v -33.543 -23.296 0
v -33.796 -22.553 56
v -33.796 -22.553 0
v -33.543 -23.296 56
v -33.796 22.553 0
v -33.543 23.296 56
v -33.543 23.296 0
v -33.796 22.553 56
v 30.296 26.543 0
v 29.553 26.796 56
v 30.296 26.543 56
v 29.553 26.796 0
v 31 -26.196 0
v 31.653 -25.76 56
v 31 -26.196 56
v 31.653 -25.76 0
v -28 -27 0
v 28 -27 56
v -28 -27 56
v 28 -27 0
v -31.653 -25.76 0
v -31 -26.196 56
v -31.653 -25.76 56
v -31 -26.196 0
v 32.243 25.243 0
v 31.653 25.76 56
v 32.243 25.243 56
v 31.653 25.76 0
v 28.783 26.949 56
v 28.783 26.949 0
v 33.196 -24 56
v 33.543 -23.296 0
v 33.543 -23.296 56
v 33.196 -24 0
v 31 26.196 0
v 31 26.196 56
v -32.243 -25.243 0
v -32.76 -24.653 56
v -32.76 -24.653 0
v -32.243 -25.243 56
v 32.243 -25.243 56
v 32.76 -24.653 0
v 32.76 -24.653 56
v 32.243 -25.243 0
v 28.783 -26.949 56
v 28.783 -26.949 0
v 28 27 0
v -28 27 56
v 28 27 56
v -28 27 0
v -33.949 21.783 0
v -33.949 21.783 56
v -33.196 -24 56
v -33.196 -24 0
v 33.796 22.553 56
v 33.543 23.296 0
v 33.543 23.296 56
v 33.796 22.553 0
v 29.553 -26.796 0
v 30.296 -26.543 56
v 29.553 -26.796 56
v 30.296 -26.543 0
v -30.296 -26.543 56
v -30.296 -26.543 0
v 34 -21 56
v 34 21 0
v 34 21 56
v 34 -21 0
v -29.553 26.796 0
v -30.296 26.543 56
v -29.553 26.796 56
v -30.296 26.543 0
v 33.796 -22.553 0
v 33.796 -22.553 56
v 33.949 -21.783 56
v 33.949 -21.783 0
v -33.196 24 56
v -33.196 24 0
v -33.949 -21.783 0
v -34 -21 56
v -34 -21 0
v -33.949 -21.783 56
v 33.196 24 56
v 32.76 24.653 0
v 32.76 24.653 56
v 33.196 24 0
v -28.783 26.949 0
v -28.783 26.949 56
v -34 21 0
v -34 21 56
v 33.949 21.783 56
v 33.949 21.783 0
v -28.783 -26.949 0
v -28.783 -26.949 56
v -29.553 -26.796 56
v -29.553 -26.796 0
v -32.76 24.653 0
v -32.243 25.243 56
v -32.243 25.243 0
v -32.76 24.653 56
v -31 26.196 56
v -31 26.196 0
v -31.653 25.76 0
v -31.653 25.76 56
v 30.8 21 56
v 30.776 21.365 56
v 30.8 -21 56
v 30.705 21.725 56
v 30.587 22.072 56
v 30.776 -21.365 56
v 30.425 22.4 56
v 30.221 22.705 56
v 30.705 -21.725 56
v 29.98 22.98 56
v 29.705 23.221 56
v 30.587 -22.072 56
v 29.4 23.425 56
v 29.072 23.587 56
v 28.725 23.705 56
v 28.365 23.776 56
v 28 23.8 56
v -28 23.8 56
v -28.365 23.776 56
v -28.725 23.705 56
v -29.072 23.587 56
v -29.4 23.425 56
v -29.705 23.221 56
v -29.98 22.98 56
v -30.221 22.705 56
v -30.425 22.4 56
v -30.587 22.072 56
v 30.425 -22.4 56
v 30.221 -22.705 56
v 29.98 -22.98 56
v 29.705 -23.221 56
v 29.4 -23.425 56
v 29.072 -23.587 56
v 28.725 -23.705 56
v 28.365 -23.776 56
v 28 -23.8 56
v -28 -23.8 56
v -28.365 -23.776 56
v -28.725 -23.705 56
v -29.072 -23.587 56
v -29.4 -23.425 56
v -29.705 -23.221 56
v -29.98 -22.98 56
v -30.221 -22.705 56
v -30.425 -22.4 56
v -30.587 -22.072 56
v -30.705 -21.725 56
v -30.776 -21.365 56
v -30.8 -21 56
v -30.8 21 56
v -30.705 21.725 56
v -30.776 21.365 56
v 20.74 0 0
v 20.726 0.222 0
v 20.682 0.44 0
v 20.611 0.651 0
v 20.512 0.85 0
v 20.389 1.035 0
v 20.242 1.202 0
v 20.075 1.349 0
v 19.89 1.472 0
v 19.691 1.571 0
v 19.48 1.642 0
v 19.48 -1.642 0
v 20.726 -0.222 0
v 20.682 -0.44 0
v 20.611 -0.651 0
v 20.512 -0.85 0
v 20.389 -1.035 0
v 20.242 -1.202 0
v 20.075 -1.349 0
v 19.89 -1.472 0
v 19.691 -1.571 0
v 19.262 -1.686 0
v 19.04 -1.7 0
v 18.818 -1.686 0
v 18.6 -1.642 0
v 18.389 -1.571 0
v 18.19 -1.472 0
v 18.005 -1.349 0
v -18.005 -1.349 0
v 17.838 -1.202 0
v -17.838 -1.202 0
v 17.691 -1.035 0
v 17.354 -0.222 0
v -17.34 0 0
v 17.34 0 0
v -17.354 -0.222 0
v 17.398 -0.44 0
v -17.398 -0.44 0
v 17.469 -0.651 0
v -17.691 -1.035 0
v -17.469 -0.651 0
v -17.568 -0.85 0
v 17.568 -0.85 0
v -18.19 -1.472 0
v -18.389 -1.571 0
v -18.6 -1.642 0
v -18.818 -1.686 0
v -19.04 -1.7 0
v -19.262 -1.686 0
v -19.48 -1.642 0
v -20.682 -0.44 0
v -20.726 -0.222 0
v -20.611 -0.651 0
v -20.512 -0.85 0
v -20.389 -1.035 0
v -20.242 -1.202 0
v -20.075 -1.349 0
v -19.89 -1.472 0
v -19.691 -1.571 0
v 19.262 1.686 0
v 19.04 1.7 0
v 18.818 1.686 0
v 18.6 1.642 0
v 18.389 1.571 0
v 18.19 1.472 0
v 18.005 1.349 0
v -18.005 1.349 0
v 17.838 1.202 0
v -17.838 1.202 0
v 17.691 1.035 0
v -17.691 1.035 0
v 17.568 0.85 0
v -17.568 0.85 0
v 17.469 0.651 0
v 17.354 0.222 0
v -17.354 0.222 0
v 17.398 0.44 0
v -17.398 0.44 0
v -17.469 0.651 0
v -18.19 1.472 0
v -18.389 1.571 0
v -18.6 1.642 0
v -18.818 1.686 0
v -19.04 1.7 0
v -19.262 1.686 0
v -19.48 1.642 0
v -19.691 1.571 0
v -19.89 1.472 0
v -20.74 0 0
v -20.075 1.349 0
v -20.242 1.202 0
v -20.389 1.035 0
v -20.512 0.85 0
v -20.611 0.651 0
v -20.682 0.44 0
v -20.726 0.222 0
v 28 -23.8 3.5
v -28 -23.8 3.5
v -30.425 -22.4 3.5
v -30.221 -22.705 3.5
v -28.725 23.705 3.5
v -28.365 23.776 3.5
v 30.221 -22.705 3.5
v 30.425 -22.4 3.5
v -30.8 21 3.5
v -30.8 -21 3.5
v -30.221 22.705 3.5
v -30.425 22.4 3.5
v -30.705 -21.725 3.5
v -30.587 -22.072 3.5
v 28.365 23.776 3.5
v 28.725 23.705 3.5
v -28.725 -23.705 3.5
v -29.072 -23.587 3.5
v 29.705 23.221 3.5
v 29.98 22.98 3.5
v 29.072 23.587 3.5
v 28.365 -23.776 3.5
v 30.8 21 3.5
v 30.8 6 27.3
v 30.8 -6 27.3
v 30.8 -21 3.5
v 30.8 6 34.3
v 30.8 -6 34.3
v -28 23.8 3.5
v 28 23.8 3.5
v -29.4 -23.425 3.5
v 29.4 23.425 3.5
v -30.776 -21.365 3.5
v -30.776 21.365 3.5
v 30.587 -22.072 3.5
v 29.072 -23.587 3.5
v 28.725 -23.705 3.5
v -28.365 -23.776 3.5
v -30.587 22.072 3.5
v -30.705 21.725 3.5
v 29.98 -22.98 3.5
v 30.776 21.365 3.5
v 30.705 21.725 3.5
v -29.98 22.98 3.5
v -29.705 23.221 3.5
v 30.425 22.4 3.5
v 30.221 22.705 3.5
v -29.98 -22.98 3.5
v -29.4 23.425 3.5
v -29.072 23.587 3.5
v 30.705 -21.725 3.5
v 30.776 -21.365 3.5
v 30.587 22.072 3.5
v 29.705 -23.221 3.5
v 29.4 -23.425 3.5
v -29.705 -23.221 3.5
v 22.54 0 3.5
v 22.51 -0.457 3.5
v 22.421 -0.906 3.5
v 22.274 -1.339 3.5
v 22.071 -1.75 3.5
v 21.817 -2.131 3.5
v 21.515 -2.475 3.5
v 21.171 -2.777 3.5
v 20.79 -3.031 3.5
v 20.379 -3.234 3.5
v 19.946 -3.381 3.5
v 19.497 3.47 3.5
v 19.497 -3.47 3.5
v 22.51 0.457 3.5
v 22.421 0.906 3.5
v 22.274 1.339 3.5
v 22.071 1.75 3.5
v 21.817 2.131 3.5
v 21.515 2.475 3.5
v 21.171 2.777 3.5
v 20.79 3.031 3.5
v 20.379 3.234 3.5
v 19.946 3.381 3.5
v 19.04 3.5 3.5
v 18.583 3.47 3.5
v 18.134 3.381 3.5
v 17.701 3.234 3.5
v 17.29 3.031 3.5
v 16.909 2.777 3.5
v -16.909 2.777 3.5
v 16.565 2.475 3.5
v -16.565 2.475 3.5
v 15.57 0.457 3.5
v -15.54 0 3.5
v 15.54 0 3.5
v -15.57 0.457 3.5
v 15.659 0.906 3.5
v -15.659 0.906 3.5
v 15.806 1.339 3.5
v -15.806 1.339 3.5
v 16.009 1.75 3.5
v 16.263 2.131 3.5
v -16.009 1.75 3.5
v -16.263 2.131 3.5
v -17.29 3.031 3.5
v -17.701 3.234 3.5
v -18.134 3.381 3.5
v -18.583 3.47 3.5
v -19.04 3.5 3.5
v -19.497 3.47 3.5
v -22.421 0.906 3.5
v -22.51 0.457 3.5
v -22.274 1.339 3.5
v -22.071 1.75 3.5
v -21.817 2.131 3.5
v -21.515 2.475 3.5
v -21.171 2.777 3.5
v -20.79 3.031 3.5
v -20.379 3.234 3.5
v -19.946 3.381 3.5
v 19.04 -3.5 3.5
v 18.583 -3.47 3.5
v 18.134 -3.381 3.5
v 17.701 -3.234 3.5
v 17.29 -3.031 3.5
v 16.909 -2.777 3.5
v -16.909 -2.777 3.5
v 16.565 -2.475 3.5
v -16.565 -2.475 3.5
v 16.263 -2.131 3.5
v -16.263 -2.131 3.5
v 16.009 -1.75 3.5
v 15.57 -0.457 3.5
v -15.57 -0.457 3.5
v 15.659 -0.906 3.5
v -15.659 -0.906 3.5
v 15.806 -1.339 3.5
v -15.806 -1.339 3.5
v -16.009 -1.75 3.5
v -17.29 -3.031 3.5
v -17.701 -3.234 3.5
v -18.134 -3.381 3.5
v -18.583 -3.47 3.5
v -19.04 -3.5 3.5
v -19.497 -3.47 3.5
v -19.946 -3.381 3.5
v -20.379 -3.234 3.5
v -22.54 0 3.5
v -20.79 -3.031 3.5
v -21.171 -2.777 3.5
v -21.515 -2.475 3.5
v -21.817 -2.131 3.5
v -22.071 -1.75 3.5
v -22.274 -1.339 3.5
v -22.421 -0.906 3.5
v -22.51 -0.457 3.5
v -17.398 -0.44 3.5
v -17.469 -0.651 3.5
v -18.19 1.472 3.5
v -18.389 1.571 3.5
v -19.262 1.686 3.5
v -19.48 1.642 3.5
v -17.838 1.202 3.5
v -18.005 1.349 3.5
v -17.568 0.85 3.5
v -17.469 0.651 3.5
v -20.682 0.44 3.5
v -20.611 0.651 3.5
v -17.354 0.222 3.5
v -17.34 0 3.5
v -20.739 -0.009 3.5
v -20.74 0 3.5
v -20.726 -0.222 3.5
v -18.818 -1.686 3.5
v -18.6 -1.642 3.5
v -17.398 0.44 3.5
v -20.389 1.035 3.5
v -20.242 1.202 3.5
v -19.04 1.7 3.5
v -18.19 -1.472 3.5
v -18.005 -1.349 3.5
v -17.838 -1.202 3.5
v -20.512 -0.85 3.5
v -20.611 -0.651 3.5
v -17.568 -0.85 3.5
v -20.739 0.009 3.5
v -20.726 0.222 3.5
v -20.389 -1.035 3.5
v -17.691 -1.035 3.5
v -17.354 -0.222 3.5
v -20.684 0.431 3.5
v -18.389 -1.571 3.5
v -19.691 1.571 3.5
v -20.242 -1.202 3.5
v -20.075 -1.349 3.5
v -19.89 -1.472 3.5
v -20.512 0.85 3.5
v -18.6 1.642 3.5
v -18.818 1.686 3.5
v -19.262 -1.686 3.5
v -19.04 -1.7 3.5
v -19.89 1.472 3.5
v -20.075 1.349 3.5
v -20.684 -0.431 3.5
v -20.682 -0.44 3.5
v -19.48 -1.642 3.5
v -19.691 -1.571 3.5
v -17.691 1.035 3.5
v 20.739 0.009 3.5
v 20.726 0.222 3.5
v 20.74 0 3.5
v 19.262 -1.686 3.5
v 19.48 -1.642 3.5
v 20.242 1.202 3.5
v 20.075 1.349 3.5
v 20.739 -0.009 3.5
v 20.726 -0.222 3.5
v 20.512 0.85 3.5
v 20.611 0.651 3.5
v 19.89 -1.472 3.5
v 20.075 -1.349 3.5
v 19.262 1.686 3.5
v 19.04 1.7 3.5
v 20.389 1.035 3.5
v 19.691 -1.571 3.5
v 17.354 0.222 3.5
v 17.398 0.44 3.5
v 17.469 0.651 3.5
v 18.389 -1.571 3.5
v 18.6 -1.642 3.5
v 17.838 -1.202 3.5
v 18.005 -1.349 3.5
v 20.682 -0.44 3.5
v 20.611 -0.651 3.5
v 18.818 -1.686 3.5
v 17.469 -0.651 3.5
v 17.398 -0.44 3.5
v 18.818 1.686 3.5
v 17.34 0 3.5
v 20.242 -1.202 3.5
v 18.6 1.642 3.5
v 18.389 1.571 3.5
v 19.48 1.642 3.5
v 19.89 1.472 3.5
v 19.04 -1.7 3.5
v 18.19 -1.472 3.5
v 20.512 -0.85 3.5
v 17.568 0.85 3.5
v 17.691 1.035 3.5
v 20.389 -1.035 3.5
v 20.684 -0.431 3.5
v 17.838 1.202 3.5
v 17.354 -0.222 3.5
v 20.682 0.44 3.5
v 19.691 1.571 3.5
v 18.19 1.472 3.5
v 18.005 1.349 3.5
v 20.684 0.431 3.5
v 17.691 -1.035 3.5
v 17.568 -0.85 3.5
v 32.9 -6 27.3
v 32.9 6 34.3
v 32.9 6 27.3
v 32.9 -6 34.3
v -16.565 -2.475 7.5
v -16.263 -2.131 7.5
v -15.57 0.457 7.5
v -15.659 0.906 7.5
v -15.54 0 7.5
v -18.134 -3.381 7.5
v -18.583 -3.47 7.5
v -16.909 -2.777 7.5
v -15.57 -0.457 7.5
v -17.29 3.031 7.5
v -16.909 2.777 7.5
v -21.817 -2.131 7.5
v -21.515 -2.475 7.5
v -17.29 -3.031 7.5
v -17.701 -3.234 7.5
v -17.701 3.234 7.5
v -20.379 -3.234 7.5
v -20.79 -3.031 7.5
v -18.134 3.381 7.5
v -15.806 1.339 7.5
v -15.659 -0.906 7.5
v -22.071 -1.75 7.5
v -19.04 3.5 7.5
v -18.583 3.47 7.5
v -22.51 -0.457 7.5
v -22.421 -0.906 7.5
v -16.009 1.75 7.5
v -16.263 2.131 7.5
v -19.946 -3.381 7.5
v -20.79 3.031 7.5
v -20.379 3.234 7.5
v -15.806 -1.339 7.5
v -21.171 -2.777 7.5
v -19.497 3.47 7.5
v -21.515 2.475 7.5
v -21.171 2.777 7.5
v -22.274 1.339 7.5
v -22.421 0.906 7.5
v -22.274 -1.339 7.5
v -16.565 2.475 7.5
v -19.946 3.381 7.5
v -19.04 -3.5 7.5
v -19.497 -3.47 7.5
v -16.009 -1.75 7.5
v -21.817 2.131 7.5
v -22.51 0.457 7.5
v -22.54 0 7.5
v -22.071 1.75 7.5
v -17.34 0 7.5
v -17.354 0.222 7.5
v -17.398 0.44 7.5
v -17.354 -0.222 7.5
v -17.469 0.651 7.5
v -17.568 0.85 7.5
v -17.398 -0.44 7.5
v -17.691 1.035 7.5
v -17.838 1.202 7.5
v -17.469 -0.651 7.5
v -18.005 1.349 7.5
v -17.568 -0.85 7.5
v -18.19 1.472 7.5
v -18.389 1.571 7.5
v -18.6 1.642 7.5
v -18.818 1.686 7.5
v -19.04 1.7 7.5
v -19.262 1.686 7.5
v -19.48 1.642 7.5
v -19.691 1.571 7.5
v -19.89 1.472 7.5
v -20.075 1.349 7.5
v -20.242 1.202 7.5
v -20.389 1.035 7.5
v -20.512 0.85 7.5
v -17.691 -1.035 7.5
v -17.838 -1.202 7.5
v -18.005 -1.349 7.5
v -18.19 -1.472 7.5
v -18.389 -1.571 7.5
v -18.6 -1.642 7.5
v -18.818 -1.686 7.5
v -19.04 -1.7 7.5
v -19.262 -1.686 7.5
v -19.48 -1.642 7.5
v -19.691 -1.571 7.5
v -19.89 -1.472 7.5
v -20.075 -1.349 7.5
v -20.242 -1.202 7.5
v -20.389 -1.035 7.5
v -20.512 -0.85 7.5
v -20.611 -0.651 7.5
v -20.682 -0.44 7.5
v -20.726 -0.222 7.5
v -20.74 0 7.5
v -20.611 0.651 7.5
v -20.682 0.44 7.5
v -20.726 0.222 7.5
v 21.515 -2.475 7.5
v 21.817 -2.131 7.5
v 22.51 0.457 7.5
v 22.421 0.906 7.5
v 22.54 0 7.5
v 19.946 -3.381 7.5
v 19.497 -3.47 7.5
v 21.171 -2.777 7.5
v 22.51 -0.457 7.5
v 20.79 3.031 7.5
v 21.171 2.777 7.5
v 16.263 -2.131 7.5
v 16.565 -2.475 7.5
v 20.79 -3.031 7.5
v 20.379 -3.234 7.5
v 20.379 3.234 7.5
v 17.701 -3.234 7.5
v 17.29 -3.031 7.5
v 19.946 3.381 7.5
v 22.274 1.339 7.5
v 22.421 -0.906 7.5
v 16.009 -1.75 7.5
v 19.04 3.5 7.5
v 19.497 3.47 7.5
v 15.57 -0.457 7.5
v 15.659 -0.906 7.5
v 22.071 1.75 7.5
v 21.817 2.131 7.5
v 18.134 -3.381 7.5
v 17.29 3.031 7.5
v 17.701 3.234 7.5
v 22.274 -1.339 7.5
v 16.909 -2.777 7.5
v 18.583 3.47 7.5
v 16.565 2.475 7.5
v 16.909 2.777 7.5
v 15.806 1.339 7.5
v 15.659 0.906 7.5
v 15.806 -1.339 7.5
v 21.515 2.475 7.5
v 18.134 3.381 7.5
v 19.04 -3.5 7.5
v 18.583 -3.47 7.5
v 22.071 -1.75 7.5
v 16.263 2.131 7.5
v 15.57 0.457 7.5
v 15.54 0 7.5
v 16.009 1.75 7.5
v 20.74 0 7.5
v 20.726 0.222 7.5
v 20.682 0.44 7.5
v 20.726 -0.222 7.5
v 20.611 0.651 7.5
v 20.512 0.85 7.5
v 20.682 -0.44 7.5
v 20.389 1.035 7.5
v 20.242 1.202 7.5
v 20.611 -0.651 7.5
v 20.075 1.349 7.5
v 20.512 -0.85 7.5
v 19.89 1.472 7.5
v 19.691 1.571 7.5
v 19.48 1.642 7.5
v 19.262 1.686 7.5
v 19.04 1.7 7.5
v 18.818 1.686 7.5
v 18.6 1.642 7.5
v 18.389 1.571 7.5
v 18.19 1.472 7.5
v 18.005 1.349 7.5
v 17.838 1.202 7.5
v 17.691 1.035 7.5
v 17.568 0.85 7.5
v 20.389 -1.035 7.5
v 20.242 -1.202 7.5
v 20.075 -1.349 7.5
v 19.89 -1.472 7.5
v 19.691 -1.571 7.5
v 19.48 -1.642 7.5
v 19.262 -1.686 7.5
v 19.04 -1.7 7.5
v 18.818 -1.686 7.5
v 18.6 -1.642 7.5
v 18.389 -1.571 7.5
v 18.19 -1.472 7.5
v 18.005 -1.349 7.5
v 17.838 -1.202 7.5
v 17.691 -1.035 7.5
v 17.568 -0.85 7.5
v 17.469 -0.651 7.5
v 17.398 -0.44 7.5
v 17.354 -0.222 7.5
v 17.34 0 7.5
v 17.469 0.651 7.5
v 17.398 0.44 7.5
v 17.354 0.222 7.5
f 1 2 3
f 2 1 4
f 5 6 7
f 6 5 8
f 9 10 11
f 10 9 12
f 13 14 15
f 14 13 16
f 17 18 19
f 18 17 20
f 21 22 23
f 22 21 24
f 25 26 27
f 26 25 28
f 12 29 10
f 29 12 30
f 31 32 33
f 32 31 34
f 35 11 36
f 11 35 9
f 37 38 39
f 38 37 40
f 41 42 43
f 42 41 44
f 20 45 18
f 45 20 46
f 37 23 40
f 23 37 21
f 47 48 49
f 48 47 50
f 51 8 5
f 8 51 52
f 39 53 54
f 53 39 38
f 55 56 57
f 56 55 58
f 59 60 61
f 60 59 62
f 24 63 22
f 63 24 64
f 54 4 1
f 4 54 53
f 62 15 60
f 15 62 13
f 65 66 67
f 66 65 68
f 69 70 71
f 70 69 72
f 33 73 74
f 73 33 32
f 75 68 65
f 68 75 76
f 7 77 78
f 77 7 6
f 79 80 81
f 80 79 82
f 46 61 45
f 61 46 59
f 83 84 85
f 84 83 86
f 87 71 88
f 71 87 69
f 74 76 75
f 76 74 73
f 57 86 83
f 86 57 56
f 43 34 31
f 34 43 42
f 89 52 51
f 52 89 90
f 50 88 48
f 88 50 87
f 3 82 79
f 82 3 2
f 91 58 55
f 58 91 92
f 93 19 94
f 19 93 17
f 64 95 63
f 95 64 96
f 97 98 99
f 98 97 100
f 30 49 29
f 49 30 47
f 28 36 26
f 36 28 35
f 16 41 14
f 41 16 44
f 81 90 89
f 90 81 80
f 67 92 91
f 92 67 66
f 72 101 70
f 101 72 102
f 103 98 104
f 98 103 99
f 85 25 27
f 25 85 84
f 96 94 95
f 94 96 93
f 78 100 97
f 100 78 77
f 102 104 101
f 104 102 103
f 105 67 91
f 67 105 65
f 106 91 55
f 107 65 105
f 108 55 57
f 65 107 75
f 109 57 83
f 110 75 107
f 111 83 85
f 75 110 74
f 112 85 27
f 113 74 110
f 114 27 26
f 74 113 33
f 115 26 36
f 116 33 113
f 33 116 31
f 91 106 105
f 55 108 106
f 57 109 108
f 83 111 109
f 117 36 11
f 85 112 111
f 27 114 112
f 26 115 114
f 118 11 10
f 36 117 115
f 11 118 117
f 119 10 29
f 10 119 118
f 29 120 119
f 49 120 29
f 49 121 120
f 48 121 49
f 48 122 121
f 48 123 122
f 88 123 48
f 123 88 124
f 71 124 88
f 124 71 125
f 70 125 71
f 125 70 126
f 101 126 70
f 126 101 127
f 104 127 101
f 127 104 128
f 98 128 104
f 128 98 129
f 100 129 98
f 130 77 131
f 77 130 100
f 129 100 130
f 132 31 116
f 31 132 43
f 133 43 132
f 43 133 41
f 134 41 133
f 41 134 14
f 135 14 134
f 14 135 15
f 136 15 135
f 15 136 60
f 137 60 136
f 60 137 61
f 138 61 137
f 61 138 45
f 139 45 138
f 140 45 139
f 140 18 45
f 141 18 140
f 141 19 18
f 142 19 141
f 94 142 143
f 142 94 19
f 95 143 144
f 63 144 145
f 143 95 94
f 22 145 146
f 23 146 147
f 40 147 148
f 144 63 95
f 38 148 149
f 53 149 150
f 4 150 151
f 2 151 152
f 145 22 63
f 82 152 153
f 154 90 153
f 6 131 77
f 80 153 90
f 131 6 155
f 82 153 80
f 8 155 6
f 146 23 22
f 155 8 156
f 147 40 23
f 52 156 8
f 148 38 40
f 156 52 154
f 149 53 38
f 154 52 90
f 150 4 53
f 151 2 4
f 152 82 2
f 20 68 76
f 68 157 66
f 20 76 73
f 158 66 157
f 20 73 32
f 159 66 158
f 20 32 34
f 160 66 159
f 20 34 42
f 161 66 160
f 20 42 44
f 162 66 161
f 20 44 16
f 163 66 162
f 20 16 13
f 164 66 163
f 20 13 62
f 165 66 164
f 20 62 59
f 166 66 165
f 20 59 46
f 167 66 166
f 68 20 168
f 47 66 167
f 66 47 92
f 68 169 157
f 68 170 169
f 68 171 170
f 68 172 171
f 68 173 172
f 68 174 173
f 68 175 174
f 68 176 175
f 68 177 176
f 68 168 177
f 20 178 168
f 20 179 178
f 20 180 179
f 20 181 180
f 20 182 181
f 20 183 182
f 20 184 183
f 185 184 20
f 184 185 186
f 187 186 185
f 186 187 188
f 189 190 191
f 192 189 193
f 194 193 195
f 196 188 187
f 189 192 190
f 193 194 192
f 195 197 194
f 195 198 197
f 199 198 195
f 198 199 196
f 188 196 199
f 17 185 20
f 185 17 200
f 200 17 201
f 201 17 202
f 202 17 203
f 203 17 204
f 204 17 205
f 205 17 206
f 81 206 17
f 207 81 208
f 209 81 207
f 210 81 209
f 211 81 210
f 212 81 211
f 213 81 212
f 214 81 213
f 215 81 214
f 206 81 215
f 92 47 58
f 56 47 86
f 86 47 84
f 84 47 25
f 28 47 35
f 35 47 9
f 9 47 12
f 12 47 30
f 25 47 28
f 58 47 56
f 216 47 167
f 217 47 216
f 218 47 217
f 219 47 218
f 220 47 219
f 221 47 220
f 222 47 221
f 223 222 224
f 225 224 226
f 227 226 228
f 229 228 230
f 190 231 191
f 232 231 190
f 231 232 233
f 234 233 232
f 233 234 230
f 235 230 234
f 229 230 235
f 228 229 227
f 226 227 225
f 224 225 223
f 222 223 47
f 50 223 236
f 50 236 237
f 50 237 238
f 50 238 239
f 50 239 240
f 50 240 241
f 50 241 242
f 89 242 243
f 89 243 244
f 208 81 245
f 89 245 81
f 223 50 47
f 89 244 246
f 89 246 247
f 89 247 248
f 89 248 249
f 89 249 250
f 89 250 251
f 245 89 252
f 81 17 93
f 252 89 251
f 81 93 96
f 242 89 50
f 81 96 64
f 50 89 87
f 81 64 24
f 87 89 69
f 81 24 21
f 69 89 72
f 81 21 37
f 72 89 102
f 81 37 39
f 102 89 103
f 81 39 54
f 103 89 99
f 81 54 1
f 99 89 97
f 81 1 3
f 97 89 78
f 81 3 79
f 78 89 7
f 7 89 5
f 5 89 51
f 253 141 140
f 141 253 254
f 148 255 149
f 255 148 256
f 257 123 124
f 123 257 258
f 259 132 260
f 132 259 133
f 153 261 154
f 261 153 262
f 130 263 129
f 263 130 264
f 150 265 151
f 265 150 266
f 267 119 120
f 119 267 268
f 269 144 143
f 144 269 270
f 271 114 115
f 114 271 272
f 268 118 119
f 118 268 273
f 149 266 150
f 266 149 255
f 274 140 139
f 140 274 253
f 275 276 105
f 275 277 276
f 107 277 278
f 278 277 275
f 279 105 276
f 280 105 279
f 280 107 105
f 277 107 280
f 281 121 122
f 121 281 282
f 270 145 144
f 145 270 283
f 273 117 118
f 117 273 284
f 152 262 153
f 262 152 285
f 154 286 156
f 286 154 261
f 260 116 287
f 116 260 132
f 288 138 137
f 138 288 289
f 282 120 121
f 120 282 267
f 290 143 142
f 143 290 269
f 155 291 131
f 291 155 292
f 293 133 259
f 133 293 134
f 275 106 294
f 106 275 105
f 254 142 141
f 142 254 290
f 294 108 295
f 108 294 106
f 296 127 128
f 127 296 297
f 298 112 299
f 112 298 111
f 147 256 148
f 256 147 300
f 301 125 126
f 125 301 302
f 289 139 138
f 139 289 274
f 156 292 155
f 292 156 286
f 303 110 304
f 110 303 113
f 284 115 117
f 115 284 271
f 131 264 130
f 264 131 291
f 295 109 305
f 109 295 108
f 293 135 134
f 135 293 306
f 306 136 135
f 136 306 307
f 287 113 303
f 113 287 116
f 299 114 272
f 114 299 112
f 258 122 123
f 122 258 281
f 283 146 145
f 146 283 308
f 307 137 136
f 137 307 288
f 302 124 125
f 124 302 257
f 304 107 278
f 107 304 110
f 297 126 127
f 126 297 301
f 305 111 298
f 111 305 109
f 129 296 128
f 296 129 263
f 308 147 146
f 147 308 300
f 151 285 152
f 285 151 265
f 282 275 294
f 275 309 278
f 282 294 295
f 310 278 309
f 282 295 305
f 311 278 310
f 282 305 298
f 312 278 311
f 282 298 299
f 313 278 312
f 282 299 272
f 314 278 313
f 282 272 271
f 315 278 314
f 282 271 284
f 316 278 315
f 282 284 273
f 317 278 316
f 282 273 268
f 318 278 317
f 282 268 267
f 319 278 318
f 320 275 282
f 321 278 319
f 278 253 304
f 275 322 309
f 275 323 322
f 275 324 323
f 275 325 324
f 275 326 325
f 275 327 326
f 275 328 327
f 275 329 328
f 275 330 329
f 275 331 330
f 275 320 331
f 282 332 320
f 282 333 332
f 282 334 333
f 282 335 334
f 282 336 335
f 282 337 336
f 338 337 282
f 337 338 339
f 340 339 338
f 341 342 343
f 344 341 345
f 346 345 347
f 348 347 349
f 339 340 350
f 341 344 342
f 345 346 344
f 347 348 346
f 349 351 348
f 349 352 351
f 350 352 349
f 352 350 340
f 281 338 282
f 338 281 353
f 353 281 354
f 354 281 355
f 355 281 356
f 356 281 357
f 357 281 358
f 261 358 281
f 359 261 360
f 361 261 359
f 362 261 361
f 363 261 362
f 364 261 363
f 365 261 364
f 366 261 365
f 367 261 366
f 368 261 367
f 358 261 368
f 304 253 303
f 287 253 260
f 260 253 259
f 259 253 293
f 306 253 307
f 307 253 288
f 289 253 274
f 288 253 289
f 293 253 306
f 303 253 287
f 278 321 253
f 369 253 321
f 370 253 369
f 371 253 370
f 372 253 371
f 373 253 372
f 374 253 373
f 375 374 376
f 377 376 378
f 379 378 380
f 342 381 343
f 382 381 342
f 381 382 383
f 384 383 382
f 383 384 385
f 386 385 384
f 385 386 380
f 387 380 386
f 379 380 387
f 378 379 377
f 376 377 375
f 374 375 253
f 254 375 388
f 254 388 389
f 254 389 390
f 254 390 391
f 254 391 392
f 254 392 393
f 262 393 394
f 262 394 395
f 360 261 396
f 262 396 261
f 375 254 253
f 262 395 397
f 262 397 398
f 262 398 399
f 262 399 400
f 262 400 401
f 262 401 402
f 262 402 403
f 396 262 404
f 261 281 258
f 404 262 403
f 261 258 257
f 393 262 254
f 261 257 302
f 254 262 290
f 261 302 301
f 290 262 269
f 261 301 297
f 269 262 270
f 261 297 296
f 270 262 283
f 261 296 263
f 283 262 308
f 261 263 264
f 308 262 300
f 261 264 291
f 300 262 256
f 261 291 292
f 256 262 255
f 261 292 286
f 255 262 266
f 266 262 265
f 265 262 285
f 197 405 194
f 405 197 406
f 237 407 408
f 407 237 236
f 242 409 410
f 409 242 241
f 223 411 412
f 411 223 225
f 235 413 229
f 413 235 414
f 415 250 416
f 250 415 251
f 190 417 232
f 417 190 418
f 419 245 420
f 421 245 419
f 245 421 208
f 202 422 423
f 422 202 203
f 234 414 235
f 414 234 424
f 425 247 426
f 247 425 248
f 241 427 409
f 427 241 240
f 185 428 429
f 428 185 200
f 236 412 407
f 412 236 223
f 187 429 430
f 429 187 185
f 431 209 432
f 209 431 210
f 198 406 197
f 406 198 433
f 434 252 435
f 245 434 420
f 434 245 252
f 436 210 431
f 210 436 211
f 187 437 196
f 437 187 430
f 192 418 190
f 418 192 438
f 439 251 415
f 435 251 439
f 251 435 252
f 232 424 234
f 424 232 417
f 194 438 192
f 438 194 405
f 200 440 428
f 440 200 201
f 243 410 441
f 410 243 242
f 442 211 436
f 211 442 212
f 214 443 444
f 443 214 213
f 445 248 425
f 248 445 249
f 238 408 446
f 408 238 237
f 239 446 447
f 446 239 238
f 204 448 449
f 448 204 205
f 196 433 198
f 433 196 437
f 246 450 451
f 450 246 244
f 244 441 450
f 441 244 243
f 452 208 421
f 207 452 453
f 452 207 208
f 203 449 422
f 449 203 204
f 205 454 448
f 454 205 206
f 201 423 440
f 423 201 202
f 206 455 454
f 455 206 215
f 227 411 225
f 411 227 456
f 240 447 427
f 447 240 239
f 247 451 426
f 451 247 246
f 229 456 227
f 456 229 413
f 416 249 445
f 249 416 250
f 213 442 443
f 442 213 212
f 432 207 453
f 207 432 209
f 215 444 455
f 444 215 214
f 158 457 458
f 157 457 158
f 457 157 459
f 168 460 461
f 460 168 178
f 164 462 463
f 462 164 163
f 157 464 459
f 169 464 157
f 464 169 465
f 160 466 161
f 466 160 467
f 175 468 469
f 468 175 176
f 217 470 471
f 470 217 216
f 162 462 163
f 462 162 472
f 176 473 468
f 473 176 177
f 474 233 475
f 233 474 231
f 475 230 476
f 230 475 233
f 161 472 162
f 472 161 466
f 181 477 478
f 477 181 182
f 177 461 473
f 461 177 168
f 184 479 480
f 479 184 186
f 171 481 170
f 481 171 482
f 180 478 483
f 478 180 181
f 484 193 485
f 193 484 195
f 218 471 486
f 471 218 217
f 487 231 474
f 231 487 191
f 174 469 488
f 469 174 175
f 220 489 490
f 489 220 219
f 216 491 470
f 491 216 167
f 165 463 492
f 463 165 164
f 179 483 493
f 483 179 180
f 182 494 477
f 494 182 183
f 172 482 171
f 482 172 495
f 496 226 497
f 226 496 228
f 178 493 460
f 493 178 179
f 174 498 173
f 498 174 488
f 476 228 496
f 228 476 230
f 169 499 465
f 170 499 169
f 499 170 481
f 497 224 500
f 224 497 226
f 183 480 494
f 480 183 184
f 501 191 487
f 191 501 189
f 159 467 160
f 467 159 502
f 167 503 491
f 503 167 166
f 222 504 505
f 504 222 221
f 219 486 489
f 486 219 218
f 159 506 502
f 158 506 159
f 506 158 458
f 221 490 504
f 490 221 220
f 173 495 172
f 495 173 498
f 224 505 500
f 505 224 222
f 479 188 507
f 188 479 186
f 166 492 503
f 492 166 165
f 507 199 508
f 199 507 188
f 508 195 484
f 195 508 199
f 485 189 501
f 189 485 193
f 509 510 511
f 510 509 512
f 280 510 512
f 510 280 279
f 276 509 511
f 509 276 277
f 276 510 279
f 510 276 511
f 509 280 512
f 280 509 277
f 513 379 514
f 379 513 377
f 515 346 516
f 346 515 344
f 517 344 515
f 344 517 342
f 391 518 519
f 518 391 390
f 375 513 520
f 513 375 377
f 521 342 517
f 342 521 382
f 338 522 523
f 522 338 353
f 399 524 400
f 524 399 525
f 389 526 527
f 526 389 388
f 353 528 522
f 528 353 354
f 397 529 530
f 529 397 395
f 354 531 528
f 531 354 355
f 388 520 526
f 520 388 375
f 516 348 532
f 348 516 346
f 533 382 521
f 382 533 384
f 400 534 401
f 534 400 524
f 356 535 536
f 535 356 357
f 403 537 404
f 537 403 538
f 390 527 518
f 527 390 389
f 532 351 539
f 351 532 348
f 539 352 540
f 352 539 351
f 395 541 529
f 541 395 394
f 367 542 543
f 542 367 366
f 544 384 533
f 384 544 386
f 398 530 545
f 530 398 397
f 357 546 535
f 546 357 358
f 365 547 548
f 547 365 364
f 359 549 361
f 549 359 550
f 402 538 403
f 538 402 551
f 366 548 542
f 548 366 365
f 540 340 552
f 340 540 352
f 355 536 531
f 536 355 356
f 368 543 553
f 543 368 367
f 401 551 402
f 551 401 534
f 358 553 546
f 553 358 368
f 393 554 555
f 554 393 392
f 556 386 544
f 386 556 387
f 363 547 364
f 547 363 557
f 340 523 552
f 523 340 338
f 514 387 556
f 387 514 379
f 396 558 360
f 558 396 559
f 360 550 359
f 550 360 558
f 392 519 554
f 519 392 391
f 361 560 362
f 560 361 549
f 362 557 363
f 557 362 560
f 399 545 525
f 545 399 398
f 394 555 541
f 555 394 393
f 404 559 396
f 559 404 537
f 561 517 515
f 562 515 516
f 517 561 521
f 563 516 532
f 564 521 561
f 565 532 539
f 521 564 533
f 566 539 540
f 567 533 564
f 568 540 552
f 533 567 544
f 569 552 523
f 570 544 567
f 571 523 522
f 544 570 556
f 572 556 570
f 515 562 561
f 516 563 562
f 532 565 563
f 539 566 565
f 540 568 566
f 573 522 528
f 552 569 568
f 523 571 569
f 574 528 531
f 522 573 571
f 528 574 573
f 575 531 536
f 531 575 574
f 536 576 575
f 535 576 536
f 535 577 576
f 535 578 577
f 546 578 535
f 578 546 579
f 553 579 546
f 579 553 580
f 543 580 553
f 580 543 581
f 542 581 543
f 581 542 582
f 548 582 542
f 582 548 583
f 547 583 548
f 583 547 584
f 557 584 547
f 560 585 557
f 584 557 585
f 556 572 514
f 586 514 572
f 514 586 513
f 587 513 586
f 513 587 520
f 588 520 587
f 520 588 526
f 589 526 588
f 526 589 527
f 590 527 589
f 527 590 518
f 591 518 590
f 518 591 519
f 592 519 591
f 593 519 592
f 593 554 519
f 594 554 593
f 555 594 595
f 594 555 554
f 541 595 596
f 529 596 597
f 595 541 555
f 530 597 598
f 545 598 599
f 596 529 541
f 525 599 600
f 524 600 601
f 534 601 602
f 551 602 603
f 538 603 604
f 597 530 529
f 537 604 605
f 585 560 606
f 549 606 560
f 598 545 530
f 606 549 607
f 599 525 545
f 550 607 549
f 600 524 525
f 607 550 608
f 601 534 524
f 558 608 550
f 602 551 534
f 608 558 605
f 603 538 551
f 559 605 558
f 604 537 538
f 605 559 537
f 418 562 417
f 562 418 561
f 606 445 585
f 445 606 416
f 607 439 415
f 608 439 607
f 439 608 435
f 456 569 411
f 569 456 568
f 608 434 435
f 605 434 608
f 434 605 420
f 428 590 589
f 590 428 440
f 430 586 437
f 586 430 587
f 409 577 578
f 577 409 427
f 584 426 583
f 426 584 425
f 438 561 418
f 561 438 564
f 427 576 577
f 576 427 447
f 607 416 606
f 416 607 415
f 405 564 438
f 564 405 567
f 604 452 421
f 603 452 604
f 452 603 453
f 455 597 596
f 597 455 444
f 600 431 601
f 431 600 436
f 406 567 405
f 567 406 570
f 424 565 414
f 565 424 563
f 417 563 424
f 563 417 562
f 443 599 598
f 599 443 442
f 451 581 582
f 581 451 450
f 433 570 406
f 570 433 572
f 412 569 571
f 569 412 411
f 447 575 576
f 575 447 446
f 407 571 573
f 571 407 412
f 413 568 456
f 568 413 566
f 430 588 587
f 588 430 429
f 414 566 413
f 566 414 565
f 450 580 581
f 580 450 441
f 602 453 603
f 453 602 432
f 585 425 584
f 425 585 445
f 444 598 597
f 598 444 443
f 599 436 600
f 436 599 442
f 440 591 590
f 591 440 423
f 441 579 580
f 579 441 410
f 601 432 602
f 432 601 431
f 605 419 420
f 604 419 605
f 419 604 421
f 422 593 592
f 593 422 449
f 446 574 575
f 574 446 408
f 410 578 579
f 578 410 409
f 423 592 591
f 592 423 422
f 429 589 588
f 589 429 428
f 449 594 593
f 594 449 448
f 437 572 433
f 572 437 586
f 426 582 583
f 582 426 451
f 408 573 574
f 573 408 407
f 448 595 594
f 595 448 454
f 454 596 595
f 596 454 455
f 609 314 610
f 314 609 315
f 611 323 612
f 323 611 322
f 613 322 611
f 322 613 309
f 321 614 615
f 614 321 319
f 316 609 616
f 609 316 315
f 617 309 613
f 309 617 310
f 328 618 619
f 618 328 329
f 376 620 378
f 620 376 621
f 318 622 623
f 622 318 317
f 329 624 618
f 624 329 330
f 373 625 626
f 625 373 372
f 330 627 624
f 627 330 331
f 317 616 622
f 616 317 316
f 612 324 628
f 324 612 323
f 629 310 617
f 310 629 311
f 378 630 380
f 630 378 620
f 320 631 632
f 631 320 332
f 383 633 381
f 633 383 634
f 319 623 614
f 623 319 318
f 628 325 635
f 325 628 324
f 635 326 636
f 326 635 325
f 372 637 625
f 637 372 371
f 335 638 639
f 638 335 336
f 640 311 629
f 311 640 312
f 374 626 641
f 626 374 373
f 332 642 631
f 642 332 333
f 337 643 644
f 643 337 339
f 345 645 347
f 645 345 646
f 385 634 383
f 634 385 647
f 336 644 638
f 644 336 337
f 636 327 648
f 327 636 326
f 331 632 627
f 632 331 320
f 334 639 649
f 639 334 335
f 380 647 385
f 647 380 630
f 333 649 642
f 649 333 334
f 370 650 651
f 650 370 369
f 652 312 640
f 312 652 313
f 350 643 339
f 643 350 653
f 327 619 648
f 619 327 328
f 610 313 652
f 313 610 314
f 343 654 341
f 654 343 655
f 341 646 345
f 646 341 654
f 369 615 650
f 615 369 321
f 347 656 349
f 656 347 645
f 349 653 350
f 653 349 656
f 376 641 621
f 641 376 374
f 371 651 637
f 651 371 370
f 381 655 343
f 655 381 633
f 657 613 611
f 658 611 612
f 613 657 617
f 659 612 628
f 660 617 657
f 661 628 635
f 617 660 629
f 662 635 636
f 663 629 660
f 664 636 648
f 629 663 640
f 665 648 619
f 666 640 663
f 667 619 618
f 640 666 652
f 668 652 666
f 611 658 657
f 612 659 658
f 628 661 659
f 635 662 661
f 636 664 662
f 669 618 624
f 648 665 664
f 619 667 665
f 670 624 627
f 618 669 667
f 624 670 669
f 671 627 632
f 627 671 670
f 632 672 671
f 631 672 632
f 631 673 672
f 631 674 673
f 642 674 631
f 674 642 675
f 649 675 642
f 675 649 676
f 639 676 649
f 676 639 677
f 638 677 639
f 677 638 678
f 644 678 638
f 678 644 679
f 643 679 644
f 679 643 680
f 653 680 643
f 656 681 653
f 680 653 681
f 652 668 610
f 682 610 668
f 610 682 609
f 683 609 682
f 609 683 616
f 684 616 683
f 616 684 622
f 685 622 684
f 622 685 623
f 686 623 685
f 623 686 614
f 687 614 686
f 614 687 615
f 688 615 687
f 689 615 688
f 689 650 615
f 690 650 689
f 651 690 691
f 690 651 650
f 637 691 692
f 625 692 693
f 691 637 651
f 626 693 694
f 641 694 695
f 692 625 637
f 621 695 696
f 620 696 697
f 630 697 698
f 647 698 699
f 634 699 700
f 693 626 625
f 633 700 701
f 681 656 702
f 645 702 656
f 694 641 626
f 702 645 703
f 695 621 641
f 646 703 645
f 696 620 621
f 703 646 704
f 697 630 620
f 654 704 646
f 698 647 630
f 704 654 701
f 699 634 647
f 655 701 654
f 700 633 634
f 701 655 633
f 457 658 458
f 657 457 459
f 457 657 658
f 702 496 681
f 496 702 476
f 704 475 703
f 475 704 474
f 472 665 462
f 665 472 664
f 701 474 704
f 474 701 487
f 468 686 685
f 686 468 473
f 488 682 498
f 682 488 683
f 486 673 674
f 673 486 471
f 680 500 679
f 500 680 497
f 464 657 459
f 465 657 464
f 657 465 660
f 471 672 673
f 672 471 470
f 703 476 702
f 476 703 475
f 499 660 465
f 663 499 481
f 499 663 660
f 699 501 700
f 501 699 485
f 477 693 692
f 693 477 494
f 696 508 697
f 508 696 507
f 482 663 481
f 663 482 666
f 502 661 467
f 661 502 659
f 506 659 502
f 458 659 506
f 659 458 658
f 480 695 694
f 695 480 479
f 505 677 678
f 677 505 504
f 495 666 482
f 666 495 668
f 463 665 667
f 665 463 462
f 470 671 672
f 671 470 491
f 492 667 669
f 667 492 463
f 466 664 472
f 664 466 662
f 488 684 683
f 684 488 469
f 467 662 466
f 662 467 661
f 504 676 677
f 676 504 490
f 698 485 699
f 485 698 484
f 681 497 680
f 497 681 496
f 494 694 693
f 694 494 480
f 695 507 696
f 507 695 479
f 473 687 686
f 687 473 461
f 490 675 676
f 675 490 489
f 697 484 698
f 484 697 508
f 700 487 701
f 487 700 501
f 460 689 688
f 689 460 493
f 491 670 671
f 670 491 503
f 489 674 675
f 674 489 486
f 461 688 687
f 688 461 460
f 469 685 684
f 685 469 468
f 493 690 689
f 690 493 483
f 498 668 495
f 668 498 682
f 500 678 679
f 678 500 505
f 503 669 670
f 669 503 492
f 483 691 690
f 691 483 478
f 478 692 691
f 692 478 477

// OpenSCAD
// ============================================================================
// Get Me An Alt — Parametric OpenSCAD Module
// Part: PRT-05 — J3 Offset Elbow Cantilever Servo Housing (elbow-housing)
// Function: Pivots forearm relative to lower arm and houses J4 roll servo.
// Target Bounding Box (mm): [68, 54, 56]
// Print Material: PETG | Min Wall: >= 1.6mm | Tolerance: 0.2mm
// ============================================================================
$fn = 48;
part_width = 68;
part_depth = 54;
part_height = 56;
wall_thickness = 3.2;
floor_thickness = 3.5;
corner_radius = 6;
tolerance = 0.2;
m3_clearance_d = 3.4; // M3 screw clearance hole (3.0mm + 2*0.2mm)

module rounded_rect_prism(w, d, h, r) {
  cr = max(0.5, min(r, min(w, d) / 2 - 0.1));
  linear_extrude(height = h)
    offset(r = cr)
      offset(r = -cr)
        square([w, d], center = true);
}

module part_elbow_housing() {
  union() {
    difference() {
      rounded_rect_prism(part_width, part_depth, part_height, corner_radius);
      translate([0, 0, floor_thickness])
        rounded_rect_prism(
          part_width - 2 * wall_thickness,
          part_depth - 2 * wall_thickness,
          part_height,
          max(1.0, corner_radius - wall_thickness)
        );
    translate([-part_width * 0.28, 0, -1]) cylinder(h = floor_thickness + 2, d = m3_clearance_d);
    translate([part_width * 0.28, 0, -1]) cylinder(h = floor_thickness + 2, d = m3_clearance_d);
      // Cable / USB-C pass-through slot on side wall
      translate([part_width / 2 - wall_thickness - 1, 0, part_height * 0.55])
        cube([wall_thickness + 3, 12, 7], center = true);
    }
    // Internal M3 PCB standoff bosses
    for (sx = [-part_width * 0.28, part_width * 0.28]) {
      translate([sx, 0, floor_thickness])
        difference() {
          cylinder(h = 4.0, d = 7.0);
          translate([0, 0, -0.5]) cylinder(h = 5.0, d = m3_clearance_d);
        }
    }
  }
}

part_elbow_housing();
